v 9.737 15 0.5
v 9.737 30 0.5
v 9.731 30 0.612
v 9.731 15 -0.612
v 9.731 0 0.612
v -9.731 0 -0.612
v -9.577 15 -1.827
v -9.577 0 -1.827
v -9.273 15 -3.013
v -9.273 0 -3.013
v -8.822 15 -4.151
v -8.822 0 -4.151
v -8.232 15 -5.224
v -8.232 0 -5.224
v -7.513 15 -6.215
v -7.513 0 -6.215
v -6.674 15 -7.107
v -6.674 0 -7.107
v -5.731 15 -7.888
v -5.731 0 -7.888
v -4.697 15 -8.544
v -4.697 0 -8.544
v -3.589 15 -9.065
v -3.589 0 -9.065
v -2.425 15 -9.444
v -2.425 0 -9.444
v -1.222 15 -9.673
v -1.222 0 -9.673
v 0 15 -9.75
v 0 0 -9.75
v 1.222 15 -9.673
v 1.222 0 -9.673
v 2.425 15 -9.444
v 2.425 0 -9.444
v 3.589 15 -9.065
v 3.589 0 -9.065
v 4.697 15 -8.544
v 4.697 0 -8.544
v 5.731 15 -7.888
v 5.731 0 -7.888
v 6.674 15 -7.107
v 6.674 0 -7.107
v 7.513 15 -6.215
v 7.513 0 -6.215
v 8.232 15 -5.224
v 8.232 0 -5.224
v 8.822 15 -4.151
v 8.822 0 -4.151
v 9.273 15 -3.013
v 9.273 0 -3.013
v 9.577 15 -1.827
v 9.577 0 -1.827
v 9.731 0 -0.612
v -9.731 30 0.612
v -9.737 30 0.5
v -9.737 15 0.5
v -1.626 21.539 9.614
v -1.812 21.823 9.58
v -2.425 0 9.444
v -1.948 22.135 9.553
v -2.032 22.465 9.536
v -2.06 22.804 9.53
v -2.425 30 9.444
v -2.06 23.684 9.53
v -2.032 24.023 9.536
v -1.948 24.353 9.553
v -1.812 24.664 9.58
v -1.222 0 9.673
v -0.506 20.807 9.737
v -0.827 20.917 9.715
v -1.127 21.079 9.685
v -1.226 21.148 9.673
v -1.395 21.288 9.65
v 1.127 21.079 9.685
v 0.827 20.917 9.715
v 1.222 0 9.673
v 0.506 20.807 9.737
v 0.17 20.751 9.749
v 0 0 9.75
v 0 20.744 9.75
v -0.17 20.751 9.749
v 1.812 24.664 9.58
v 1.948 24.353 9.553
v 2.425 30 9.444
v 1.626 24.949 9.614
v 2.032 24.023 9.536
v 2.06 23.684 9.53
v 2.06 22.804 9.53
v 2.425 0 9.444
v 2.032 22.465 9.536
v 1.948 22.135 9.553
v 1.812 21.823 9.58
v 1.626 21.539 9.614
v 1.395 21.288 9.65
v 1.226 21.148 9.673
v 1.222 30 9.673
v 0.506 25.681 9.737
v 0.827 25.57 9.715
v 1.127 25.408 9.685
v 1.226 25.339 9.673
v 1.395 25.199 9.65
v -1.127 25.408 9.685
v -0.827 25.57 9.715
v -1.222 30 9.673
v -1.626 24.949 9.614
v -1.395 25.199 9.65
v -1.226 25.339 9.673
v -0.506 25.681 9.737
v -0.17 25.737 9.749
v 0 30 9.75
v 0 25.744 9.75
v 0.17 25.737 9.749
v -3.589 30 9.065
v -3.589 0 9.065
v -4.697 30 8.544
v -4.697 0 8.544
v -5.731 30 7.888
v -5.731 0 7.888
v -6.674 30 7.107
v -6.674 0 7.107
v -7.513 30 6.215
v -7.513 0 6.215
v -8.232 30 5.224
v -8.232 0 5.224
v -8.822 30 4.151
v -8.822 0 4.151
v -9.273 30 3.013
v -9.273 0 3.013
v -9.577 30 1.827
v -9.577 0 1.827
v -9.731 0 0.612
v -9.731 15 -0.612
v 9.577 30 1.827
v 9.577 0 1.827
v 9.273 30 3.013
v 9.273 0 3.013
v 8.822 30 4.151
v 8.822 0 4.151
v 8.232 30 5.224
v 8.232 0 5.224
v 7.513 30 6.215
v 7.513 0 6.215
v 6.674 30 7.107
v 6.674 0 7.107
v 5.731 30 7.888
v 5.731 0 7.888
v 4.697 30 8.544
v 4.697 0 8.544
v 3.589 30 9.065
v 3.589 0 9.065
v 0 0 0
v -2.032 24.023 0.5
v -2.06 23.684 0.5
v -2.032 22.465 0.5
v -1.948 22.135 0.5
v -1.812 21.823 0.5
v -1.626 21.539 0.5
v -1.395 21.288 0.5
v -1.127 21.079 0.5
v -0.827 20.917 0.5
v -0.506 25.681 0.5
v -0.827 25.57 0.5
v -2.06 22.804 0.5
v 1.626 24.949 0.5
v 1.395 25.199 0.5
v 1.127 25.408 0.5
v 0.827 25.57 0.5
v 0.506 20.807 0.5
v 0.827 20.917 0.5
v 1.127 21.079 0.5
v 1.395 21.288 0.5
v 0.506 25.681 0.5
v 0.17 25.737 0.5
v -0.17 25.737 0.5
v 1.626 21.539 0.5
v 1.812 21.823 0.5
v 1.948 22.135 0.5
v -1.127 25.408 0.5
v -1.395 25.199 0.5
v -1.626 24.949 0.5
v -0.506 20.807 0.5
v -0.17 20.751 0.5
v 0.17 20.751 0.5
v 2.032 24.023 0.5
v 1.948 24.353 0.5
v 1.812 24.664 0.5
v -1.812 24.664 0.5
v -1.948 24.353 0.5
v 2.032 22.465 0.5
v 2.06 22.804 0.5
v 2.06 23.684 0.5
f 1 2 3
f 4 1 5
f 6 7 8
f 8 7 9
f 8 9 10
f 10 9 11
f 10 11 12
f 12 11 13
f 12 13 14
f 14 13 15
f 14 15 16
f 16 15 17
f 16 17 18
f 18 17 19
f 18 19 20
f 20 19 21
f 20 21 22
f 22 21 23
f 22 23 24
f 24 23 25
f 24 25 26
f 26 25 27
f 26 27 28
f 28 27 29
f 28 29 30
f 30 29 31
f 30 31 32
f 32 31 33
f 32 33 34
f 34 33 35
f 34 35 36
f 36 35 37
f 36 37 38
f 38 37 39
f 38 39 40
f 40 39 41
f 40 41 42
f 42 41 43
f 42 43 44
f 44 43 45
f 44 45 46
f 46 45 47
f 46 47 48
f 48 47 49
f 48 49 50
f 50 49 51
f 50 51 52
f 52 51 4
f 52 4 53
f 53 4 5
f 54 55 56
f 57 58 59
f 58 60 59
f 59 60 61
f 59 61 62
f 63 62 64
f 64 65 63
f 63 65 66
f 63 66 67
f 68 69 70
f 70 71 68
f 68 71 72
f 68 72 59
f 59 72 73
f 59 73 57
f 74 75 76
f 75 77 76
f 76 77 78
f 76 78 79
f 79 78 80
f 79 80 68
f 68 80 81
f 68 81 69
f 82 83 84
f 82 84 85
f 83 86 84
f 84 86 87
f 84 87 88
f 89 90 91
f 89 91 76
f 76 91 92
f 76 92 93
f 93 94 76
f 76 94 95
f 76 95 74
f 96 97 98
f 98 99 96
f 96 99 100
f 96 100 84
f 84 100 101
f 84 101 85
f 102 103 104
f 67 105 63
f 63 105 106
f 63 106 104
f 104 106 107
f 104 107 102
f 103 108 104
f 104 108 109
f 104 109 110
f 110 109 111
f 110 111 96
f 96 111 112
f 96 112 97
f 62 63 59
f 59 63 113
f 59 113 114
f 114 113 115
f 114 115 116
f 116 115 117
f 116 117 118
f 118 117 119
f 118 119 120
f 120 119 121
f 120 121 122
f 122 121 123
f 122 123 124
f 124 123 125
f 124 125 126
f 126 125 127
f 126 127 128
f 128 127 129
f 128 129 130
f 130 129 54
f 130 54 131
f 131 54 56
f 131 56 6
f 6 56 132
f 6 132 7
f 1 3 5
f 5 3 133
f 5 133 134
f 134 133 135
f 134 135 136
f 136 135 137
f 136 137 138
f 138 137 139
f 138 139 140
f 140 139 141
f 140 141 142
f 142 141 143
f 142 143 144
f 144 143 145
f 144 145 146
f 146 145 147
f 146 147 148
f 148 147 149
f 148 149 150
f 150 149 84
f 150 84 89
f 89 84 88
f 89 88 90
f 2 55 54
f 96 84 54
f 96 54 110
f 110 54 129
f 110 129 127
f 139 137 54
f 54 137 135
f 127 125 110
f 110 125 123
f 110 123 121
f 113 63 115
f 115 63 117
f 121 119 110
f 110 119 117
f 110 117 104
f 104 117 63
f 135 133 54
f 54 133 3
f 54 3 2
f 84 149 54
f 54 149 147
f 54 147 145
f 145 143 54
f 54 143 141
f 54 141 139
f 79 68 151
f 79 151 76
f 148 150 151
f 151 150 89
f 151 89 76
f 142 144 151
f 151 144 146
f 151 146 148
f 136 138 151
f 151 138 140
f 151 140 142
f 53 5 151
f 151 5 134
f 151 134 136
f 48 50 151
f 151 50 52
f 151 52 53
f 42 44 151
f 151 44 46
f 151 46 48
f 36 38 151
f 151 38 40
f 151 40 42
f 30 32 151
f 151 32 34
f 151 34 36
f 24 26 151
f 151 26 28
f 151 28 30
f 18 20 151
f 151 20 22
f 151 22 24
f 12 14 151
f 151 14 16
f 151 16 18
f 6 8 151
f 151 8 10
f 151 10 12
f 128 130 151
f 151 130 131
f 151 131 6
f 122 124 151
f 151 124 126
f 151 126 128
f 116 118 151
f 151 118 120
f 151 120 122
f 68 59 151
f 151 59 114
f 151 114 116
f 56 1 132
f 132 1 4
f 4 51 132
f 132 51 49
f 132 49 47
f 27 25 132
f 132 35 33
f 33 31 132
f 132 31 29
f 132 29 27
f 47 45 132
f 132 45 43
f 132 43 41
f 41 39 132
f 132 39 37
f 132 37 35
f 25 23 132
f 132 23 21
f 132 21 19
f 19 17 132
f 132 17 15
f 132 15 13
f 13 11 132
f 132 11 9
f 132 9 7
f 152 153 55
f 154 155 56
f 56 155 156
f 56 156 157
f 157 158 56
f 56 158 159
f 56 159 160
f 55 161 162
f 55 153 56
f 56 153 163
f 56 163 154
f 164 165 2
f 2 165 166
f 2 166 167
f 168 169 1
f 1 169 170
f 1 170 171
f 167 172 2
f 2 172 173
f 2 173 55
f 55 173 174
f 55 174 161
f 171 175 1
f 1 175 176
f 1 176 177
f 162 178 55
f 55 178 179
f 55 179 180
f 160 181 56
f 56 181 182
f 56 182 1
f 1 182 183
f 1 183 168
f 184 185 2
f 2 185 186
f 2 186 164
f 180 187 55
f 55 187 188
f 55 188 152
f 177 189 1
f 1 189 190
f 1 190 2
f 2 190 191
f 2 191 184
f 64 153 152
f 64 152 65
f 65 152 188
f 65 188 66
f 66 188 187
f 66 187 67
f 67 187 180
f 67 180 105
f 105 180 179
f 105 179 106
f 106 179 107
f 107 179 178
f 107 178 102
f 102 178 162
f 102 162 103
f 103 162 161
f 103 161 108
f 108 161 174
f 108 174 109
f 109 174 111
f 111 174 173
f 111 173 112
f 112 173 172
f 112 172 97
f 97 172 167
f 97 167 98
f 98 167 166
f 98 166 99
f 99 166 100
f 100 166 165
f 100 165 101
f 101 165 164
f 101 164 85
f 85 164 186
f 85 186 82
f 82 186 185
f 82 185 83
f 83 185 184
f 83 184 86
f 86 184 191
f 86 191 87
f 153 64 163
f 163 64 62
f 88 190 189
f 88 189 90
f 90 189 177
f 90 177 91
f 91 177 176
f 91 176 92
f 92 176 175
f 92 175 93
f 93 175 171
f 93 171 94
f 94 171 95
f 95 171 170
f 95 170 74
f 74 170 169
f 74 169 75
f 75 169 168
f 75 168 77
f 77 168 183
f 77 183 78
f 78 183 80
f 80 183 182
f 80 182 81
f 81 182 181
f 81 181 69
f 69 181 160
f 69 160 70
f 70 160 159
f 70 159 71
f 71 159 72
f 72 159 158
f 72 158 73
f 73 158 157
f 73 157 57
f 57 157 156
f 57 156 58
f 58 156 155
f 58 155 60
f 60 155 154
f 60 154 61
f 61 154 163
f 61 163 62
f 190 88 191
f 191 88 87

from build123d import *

# Parameters (mm, degrees)
SKETCH1_R               = 9.75
BOSS_EXTRUDE1_DEPTH     = 30
CUT_EXTRUDE1_DEPTH      = 0.5
CUT_EXTRUDE1_DEPTH_BACK = 30
SKETCH3_W               = 19.5
SKETCH3_H               = 15
CUT_EXTRUDE2_DEPTH      = 30


with BuildPart() as part:
    # Sketch1 → Boss-Extrude1 (new body)
    with BuildSketch(Plane(origin=(0, 0, 0), x_dir=(1, 0, 0), z_dir=(0, 1, 0))):
        with Locations(Location((0, 0, 0), (0, 0, 270))):
            Circle(SKETCH1_R)
    extrude(amount=BOSS_EXTRUDE1_DEPTH)

    # Sketch3 → Cut-Extrude1 (cut, two sides: drawn at the far end of the back side and taken through both)
    with BuildSketch(Plane.XY.offset(-CUT_EXTRUDE1_DEPTH_BACK)):
        with Locations((0, 22.5)):
            Rectangle(SKETCH3_W, SKETCH3_H)
    extrude(amount=CUT_EXTRUDE1_DEPTH + CUT_EXTRUDE1_DEPTH_BACK, mode=Mode.SUBTRACT)

    # Sketch4 → Cut-Extrude2 (cut)
    with BuildSketch(Plane(origin=(0, 0, 0.5), x_dir=(-1, 0, 0), z_dir=(0, 0, -1))):
        with BuildLine():
            Line((2.06, 23.683843632), (2.06, 22.803843632))
            ThreePointArc((2.06, 22.803843632), (0, 20.743843632), (-2.06, 22.803843632))
            Line((-2.06, 22.803843632), (-2.06, 23.683843632))
            ThreePointArc((-2.06, 23.683843632), (0, 25.743843632), (2.06, 23.683843632))
        make_face()
    extrude(amount=-CUT_EXTRUDE2_DEPTH, mode=Mode.SUBTRACT)


solid = part.part
